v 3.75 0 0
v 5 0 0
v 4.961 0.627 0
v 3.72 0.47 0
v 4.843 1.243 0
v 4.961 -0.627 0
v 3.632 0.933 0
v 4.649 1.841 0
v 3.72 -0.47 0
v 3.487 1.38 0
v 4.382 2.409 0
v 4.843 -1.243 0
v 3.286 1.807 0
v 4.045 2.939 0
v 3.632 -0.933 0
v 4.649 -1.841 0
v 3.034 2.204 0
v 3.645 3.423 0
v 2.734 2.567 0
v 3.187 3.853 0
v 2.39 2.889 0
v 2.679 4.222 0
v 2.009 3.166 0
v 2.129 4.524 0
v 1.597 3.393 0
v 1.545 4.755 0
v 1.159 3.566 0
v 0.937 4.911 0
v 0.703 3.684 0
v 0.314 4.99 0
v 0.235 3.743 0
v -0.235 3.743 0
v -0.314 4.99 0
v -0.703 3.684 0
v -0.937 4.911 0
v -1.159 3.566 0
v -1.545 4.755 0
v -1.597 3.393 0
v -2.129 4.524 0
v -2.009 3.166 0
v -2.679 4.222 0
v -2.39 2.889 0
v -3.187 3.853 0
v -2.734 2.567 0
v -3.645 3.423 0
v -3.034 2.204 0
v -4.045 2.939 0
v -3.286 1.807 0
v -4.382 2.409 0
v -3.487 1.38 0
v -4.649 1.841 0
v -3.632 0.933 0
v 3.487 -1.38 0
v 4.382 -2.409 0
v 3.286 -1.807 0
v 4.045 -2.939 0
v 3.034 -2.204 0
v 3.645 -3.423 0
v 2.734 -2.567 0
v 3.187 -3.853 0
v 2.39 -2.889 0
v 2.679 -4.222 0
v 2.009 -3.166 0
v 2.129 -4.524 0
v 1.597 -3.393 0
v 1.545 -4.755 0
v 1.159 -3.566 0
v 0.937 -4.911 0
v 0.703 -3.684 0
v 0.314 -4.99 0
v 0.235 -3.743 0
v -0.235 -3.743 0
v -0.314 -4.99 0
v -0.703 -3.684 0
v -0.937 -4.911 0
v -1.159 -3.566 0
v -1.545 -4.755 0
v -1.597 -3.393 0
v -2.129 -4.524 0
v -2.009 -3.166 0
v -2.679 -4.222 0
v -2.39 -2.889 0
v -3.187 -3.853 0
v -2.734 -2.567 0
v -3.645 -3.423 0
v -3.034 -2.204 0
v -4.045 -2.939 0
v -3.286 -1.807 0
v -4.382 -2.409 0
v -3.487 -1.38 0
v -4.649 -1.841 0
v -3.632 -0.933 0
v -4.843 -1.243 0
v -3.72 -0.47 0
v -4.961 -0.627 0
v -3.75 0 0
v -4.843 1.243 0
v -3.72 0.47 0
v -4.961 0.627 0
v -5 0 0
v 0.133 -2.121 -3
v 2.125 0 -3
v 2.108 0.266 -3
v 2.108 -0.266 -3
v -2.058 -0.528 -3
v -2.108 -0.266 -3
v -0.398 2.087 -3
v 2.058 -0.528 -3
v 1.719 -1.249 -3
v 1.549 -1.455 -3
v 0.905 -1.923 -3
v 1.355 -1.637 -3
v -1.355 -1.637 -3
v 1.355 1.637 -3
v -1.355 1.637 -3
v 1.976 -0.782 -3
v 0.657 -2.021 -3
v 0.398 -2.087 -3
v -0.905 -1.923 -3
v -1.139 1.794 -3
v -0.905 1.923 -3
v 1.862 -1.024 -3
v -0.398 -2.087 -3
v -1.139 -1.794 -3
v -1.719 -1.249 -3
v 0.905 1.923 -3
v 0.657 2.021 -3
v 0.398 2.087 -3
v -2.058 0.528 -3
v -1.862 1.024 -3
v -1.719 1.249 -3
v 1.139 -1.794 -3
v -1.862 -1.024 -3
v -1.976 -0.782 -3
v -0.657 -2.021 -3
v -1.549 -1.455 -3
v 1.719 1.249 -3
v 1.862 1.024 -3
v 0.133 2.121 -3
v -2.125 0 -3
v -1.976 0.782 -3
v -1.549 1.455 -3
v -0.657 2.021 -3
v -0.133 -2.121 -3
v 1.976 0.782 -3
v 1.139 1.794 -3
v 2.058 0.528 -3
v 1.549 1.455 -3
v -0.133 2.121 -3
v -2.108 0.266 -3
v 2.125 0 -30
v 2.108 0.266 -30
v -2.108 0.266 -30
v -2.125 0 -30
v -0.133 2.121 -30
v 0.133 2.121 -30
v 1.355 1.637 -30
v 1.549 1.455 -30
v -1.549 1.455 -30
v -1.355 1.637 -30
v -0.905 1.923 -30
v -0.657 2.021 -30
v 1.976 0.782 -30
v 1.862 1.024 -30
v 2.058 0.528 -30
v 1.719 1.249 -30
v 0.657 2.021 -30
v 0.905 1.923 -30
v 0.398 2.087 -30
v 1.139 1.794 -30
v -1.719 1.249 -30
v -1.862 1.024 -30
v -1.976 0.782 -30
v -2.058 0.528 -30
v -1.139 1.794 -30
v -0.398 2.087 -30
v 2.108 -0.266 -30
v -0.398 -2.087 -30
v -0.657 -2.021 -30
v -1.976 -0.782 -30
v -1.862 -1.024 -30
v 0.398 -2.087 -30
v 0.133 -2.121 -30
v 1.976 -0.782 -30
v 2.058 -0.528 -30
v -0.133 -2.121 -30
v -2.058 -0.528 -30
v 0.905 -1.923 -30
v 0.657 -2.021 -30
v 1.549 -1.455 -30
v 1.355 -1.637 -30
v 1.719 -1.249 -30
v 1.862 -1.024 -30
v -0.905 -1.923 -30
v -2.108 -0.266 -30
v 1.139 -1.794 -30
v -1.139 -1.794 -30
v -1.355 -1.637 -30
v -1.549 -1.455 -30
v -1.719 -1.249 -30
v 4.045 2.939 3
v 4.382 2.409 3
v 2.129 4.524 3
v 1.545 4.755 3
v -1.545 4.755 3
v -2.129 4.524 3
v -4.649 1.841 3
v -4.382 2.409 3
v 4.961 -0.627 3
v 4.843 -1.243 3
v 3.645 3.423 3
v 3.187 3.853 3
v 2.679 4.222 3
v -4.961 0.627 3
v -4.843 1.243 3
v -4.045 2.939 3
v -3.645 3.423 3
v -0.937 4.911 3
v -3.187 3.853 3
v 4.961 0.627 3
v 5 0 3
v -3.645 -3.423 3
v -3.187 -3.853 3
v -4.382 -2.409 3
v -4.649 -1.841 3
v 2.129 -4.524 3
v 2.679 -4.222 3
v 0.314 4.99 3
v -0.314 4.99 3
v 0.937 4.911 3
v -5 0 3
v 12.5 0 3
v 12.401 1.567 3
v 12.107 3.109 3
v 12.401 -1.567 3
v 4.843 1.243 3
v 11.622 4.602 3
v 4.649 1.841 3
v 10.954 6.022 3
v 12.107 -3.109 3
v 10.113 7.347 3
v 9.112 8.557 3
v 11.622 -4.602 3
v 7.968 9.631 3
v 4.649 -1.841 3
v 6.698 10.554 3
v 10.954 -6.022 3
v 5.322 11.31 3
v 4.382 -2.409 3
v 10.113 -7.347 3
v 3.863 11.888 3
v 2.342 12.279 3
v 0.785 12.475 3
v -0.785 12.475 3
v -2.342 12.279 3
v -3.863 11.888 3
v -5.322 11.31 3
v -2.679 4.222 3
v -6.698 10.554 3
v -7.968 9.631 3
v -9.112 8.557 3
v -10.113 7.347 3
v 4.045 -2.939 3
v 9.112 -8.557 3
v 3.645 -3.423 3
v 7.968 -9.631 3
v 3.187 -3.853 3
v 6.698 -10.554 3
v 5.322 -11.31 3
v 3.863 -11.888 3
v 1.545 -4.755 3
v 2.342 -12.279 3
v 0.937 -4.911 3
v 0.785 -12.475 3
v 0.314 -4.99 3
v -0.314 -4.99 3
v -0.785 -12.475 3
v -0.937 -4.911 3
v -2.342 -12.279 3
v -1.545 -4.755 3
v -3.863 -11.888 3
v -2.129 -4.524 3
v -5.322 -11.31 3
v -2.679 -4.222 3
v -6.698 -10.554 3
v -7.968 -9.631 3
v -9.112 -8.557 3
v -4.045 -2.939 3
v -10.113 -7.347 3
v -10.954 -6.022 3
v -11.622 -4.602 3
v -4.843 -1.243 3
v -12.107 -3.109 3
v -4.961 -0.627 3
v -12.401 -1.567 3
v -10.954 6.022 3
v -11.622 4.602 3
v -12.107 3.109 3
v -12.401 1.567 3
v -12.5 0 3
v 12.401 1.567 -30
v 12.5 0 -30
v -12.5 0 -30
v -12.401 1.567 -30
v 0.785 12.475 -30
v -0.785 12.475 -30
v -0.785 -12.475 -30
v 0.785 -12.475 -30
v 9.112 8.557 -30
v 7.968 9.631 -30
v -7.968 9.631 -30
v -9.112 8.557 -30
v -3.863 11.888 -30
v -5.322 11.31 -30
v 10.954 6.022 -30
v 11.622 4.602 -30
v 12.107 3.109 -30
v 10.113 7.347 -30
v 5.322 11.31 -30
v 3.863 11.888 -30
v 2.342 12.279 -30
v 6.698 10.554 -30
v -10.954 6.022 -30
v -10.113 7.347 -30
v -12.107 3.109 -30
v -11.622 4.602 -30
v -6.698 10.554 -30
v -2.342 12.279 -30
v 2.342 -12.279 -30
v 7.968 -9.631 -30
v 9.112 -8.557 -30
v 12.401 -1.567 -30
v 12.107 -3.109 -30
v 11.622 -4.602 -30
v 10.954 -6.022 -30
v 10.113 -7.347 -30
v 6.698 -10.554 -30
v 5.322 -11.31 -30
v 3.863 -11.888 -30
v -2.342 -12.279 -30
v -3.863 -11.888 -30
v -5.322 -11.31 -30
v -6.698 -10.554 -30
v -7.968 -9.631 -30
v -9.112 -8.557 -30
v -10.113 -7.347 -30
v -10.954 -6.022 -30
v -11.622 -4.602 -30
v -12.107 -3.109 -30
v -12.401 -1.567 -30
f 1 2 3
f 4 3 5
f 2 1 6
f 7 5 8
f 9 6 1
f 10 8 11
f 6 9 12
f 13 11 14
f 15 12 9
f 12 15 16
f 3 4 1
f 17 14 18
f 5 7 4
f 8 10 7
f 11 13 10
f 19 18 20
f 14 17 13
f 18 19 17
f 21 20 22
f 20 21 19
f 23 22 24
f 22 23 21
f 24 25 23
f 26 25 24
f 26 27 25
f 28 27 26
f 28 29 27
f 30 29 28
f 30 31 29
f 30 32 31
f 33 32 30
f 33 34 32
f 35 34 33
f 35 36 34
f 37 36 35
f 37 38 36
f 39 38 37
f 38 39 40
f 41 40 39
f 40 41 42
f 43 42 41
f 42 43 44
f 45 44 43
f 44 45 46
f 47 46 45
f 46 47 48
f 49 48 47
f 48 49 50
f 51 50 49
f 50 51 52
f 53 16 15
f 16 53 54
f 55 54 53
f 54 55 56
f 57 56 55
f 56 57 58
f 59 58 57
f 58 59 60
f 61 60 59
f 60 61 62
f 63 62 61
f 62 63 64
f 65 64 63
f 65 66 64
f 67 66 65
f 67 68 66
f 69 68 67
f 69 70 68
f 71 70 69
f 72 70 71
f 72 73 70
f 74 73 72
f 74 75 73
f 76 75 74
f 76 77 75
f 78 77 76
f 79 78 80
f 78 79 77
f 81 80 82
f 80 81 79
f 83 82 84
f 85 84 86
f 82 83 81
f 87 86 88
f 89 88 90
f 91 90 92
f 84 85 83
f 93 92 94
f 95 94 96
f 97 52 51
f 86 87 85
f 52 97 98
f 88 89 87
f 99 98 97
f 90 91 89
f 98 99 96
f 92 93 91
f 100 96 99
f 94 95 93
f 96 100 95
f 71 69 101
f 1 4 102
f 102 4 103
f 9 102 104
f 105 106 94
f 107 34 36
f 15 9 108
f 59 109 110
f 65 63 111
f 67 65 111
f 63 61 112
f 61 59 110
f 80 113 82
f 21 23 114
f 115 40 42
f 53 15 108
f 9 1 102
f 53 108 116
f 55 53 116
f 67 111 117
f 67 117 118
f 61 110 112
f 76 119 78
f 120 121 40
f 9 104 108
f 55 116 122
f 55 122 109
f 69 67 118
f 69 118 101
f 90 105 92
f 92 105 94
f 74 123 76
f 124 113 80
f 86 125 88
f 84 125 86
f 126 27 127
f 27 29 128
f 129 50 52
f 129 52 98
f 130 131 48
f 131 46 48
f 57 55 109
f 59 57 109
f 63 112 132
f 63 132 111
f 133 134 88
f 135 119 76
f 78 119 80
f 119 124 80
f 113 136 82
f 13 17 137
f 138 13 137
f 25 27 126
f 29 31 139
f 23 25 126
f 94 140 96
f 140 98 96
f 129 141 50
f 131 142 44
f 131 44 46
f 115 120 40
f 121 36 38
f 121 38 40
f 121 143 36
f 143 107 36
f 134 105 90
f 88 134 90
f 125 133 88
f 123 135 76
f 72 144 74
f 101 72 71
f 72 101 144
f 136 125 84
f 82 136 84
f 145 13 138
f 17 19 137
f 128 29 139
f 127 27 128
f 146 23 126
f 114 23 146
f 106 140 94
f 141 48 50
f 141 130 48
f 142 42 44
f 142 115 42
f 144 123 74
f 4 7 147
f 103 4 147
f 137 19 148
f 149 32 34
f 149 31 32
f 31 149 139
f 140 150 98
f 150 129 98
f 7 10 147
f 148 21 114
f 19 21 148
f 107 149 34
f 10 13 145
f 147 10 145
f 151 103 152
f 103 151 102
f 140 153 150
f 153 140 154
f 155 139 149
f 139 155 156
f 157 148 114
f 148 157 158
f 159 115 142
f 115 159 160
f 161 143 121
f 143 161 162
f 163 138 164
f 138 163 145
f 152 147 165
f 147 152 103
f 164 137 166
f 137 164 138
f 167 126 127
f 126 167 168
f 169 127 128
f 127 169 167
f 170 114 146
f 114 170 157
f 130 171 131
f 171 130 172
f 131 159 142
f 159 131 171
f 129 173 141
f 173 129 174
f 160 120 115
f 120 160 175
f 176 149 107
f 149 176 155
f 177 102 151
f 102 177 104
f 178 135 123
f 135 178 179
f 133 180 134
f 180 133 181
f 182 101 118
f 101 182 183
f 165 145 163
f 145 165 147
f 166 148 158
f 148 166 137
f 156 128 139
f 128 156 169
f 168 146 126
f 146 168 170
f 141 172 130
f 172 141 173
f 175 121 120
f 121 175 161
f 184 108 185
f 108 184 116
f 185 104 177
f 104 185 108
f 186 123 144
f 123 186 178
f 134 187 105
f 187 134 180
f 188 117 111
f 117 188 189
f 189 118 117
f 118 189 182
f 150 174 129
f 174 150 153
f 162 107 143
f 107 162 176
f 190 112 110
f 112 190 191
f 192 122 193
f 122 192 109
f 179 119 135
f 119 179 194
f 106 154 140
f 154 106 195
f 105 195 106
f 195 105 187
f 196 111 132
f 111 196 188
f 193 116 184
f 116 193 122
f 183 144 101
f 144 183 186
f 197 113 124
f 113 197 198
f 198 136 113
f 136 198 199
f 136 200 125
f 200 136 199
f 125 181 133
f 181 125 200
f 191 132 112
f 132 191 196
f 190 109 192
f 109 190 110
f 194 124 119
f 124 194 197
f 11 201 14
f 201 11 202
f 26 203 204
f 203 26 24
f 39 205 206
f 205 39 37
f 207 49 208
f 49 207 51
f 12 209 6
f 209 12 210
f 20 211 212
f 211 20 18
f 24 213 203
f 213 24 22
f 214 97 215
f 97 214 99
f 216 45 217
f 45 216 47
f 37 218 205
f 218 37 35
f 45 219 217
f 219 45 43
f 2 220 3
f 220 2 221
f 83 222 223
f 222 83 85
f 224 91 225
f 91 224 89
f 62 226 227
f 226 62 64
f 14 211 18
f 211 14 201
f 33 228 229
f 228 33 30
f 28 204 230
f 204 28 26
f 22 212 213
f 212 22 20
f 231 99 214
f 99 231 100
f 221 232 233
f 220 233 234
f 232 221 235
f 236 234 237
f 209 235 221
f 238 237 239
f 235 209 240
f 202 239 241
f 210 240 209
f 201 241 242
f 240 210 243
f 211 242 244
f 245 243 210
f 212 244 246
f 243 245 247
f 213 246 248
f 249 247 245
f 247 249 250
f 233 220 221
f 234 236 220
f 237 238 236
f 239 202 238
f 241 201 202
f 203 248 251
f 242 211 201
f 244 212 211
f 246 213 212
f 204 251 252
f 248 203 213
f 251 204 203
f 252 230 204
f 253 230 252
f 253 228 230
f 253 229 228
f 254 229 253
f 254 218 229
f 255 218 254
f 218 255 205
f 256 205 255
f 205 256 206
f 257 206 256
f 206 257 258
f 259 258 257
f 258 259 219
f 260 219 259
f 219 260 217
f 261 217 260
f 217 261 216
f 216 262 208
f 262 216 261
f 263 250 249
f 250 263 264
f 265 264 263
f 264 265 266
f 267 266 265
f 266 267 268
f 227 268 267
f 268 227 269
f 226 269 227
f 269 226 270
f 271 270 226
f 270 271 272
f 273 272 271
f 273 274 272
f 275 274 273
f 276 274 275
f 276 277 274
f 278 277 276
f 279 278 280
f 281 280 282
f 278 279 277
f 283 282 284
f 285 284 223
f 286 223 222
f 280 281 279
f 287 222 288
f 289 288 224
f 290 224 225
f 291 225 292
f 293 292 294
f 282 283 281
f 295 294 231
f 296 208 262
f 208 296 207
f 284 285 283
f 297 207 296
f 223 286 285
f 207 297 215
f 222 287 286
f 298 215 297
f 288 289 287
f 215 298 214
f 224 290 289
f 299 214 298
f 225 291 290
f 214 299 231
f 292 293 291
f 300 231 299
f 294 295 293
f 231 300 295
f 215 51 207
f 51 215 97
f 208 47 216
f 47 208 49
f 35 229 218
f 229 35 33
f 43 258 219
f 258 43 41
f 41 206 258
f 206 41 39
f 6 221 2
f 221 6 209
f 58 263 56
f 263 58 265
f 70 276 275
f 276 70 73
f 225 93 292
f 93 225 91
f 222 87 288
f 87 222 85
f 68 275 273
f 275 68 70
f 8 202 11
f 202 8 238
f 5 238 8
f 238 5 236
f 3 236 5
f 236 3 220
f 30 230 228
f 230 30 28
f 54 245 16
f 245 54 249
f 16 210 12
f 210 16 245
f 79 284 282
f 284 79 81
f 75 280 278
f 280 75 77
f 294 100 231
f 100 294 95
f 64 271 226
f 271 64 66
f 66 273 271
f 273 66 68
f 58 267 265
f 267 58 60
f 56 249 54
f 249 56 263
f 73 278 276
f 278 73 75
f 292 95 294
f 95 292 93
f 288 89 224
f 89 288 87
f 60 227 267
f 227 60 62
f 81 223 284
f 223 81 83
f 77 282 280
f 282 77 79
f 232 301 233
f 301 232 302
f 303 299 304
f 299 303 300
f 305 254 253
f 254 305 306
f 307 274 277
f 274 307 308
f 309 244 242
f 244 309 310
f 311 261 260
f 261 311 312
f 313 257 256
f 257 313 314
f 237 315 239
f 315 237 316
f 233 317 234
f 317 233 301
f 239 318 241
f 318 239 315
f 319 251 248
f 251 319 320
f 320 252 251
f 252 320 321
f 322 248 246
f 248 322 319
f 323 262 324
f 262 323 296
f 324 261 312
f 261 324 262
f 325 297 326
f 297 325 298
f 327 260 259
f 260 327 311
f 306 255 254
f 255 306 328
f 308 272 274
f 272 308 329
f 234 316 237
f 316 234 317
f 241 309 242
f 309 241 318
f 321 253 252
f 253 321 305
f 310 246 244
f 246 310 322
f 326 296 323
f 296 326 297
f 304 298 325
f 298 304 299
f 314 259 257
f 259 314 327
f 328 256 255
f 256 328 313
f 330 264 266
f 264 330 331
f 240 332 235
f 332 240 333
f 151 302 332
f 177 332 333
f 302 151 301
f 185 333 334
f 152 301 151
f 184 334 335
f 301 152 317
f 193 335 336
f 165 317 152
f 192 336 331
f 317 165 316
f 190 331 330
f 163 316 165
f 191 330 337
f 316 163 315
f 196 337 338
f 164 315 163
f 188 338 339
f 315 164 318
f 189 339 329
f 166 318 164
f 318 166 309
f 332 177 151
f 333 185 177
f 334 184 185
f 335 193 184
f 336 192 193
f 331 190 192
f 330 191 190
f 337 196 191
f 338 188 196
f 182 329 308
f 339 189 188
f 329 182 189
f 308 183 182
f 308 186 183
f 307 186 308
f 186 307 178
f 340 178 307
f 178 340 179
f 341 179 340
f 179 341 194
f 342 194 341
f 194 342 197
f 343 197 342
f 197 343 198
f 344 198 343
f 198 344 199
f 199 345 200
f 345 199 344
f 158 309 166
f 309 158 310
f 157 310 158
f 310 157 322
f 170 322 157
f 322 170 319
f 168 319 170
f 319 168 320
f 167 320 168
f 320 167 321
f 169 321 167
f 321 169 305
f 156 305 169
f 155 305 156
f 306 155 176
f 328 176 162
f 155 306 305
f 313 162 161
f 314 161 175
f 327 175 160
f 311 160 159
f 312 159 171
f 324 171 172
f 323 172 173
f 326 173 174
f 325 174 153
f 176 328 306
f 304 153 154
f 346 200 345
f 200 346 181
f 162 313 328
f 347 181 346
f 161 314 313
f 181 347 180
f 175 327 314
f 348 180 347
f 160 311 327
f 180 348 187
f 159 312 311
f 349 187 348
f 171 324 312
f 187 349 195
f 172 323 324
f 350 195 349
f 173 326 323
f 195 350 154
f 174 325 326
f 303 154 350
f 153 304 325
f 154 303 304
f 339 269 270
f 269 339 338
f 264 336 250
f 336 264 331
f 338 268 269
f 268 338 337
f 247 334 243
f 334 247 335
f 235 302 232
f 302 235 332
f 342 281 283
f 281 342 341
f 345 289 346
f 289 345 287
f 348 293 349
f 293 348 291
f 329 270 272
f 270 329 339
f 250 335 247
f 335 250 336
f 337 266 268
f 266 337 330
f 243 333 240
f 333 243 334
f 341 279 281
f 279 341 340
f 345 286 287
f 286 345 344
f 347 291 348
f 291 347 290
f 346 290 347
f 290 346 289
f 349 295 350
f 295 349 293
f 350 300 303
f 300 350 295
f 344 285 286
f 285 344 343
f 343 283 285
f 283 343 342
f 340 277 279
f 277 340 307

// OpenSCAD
$fn = 50;

difference() {
	union() {
		translate(v = [0, 0, -30.0]) {
			cylinder(h = 33, r = 12.5);
		}
	}
	union() {
		translate(v = [0, 0, 0]) {
			rotate(a = [0, 0, 0]) {
				difference() {
					union() {
						translate(v = [0, 0, -33.0]) {
							cylinder(h = 33, r = 2.0);
						}
						translate(v = [0, 0, -3]) {
							cylinder(h = 3, r1 = 2.125, r2 = 3.75);
						}
						translate(v = [0, 0, -33.0]) {
							cylinder(h = 33, r = 2.125);
						}
						translate(v = [0, 0, -33.0]) {
							cylinder(h = 33, r = 2.0);
						}
					}
					union();
				}
			}
		}
		#cylinder(h = 3, r = 5.0);
	}
}
